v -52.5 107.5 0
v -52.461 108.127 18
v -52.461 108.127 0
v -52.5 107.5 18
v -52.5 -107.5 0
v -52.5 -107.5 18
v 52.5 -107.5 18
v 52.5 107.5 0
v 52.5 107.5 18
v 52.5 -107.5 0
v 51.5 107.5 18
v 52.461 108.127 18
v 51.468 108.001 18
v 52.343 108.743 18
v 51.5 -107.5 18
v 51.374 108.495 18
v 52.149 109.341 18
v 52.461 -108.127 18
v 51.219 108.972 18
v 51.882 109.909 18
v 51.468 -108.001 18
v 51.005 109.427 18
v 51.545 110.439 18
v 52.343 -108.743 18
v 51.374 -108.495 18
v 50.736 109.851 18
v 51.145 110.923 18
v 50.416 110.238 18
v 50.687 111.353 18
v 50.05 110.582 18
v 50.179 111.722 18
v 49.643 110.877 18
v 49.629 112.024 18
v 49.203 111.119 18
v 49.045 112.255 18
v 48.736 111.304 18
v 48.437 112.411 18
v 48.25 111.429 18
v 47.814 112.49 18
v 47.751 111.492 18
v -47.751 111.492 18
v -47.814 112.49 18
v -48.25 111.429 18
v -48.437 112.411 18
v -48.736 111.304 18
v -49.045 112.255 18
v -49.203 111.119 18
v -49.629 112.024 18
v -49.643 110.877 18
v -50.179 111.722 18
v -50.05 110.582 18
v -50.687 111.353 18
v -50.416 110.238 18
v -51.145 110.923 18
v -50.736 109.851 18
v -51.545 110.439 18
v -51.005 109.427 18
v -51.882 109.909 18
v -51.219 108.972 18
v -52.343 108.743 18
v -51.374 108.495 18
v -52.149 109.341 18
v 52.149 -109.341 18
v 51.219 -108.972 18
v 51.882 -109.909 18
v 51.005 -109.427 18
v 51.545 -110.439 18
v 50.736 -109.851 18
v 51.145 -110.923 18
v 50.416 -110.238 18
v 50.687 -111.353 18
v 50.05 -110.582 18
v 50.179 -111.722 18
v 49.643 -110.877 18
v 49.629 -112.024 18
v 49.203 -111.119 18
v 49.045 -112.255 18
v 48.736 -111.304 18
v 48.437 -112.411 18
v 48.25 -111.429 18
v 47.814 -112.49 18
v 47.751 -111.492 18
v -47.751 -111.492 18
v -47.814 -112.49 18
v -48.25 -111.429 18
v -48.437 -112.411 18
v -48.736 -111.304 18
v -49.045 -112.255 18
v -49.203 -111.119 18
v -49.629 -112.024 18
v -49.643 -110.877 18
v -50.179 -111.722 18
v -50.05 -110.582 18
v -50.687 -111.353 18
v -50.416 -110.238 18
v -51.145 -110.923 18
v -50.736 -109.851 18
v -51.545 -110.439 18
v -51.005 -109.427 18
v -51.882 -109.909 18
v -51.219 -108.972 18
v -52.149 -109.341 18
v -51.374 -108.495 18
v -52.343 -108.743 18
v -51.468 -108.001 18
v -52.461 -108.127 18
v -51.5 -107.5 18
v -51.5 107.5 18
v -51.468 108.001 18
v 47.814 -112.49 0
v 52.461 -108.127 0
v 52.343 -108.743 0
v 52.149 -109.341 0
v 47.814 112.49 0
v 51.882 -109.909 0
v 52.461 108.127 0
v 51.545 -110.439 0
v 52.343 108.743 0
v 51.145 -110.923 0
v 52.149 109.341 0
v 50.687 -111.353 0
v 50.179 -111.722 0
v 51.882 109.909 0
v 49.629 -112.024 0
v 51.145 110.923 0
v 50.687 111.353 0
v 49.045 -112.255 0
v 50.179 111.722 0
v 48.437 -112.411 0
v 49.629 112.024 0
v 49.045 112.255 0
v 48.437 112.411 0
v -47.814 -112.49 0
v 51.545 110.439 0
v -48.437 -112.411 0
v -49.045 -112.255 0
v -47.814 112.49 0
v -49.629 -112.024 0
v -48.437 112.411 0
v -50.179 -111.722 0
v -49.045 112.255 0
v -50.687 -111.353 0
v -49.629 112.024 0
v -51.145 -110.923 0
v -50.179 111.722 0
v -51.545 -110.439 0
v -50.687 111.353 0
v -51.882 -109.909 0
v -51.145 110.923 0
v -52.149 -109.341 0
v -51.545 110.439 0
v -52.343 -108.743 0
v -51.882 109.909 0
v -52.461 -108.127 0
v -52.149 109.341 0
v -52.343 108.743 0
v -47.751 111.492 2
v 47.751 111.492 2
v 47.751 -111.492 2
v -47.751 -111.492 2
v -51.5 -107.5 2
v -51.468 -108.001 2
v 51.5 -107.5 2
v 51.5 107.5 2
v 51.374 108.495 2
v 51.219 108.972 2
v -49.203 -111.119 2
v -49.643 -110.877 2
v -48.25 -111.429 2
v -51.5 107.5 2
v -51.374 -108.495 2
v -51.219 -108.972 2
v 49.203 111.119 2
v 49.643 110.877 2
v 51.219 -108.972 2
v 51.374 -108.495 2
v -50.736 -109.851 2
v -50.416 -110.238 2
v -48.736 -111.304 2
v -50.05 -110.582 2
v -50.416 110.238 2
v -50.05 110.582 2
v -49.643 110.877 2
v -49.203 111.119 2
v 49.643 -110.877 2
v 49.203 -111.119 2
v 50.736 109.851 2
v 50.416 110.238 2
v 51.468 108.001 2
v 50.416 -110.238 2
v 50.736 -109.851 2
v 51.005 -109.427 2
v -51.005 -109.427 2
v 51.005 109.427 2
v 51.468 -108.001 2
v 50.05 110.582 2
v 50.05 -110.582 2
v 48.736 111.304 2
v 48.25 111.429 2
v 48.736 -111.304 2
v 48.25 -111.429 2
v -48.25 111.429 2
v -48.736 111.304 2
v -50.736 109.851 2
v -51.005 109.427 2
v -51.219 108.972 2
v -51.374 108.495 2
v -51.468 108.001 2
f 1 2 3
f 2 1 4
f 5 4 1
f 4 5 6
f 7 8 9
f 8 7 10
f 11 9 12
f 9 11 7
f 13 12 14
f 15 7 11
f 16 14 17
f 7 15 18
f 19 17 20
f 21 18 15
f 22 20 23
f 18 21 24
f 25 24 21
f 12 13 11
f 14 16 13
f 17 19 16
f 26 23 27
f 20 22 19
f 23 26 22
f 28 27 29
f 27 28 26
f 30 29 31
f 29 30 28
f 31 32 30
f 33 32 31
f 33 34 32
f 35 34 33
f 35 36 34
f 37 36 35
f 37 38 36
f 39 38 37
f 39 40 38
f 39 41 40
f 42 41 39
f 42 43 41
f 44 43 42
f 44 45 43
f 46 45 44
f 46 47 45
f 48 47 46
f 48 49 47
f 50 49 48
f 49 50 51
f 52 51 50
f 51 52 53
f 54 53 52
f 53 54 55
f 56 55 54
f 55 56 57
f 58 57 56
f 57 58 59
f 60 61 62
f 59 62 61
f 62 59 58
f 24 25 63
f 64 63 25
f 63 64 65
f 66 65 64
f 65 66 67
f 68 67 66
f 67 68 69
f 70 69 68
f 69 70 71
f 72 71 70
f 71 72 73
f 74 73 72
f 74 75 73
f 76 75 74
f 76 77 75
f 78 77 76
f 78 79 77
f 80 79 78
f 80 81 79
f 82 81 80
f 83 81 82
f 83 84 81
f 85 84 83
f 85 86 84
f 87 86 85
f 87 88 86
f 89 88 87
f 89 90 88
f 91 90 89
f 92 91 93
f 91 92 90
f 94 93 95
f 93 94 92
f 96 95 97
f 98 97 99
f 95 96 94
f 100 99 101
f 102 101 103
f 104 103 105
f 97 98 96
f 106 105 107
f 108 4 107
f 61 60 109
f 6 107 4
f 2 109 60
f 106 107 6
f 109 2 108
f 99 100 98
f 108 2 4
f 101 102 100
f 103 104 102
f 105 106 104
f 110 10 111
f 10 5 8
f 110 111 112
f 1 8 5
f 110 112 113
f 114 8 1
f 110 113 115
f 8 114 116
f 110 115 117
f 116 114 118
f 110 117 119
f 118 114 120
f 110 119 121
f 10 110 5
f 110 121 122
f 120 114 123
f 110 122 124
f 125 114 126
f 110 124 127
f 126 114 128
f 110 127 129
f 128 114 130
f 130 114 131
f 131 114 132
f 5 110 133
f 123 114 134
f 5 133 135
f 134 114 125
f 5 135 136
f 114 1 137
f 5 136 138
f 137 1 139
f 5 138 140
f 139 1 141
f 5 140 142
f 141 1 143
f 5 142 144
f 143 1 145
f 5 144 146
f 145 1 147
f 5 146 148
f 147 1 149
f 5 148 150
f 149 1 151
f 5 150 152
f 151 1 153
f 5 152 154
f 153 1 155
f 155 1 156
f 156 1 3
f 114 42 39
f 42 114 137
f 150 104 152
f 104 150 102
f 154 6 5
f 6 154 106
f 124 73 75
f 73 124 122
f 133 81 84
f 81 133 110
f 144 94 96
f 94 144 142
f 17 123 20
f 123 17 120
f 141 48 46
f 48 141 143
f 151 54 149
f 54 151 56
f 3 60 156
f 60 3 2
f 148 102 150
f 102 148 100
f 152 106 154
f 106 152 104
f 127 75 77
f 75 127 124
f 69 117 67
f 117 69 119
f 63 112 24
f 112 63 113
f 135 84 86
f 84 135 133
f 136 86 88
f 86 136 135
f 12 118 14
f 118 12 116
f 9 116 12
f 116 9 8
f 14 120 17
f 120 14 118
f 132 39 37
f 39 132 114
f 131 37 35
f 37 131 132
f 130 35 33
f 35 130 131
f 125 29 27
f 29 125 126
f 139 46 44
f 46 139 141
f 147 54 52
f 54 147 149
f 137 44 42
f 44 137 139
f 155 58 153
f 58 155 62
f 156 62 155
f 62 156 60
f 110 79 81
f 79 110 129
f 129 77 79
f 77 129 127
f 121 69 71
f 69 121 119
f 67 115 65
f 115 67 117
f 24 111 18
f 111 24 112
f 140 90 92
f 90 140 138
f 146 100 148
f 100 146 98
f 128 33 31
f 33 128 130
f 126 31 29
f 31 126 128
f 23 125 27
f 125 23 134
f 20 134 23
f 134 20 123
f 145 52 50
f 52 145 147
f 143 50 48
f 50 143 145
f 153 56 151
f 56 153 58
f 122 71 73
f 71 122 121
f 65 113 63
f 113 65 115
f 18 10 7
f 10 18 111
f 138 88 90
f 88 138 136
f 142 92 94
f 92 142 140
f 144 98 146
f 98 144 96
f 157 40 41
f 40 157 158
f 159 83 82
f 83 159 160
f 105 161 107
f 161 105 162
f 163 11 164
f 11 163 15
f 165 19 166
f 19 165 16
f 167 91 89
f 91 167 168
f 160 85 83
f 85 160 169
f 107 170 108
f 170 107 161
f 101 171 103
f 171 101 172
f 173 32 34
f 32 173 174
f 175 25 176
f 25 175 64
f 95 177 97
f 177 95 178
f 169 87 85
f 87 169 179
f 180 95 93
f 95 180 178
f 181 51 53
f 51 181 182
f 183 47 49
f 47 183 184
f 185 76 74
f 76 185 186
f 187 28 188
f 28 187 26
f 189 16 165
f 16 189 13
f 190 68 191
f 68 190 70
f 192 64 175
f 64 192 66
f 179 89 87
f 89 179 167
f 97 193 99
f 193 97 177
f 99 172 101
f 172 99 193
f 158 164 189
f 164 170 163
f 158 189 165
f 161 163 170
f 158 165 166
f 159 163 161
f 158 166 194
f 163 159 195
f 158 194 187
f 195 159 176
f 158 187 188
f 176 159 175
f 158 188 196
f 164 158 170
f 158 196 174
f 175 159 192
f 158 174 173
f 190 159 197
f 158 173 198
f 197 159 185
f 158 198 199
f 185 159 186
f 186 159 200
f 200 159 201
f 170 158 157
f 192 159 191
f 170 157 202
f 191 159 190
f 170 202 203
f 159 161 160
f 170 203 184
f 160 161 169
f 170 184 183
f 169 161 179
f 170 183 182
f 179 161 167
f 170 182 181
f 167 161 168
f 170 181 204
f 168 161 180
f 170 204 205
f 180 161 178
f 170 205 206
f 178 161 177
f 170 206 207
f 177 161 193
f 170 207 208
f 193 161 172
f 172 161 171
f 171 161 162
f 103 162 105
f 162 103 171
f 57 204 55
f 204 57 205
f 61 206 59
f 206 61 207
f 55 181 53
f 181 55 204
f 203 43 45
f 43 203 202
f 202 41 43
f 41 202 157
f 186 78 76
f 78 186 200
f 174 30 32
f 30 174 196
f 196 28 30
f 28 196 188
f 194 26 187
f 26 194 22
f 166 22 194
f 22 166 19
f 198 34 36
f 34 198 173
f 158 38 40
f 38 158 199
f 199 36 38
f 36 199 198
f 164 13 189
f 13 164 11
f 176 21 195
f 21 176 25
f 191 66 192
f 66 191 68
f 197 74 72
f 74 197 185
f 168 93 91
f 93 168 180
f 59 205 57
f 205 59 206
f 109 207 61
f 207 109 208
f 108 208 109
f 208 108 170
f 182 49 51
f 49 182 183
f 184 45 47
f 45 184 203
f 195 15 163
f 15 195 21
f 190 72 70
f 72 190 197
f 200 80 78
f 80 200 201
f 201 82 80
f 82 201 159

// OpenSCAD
$fn = 50;


difference() {
	union() {
		hull() {
			translate(v = [-47.5000000000, 107.5000000000, 0]) {
				cylinder(h = 18, r = 5);
			}
			translate(v = [47.5000000000, 107.5000000000, 0]) {
				cylinder(h = 18, r = 5);
			}
			translate(v = [-47.5000000000, -107.5000000000, 0]) {
				cylinder(h = 18, r = 5);
			}
			translate(v = [47.5000000000, -107.5000000000, 0]) {
				cylinder(h = 18, r = 5);
			}
		}
	}
	union() {
		translate(v = [0, 0, 2]) {
			hull() {
				translate(v = [-47.5000000000, 107.5000000000, 0]) {
					cylinder(h = 16, r = 4);
				}
				translate(v = [47.5000000000, 107.5000000000, 0]) {
					cylinder(h = 16, r = 4);
				}
				translate(v = [-47.5000000000, -107.5000000000, 0]) {
					cylinder(h = 16, r = 4);
				}
				translate(v = [47.5000000000, -107.5000000000, 0]) {
					cylinder(h = 16, r = 4);
				}
			}
		}
	}
}
